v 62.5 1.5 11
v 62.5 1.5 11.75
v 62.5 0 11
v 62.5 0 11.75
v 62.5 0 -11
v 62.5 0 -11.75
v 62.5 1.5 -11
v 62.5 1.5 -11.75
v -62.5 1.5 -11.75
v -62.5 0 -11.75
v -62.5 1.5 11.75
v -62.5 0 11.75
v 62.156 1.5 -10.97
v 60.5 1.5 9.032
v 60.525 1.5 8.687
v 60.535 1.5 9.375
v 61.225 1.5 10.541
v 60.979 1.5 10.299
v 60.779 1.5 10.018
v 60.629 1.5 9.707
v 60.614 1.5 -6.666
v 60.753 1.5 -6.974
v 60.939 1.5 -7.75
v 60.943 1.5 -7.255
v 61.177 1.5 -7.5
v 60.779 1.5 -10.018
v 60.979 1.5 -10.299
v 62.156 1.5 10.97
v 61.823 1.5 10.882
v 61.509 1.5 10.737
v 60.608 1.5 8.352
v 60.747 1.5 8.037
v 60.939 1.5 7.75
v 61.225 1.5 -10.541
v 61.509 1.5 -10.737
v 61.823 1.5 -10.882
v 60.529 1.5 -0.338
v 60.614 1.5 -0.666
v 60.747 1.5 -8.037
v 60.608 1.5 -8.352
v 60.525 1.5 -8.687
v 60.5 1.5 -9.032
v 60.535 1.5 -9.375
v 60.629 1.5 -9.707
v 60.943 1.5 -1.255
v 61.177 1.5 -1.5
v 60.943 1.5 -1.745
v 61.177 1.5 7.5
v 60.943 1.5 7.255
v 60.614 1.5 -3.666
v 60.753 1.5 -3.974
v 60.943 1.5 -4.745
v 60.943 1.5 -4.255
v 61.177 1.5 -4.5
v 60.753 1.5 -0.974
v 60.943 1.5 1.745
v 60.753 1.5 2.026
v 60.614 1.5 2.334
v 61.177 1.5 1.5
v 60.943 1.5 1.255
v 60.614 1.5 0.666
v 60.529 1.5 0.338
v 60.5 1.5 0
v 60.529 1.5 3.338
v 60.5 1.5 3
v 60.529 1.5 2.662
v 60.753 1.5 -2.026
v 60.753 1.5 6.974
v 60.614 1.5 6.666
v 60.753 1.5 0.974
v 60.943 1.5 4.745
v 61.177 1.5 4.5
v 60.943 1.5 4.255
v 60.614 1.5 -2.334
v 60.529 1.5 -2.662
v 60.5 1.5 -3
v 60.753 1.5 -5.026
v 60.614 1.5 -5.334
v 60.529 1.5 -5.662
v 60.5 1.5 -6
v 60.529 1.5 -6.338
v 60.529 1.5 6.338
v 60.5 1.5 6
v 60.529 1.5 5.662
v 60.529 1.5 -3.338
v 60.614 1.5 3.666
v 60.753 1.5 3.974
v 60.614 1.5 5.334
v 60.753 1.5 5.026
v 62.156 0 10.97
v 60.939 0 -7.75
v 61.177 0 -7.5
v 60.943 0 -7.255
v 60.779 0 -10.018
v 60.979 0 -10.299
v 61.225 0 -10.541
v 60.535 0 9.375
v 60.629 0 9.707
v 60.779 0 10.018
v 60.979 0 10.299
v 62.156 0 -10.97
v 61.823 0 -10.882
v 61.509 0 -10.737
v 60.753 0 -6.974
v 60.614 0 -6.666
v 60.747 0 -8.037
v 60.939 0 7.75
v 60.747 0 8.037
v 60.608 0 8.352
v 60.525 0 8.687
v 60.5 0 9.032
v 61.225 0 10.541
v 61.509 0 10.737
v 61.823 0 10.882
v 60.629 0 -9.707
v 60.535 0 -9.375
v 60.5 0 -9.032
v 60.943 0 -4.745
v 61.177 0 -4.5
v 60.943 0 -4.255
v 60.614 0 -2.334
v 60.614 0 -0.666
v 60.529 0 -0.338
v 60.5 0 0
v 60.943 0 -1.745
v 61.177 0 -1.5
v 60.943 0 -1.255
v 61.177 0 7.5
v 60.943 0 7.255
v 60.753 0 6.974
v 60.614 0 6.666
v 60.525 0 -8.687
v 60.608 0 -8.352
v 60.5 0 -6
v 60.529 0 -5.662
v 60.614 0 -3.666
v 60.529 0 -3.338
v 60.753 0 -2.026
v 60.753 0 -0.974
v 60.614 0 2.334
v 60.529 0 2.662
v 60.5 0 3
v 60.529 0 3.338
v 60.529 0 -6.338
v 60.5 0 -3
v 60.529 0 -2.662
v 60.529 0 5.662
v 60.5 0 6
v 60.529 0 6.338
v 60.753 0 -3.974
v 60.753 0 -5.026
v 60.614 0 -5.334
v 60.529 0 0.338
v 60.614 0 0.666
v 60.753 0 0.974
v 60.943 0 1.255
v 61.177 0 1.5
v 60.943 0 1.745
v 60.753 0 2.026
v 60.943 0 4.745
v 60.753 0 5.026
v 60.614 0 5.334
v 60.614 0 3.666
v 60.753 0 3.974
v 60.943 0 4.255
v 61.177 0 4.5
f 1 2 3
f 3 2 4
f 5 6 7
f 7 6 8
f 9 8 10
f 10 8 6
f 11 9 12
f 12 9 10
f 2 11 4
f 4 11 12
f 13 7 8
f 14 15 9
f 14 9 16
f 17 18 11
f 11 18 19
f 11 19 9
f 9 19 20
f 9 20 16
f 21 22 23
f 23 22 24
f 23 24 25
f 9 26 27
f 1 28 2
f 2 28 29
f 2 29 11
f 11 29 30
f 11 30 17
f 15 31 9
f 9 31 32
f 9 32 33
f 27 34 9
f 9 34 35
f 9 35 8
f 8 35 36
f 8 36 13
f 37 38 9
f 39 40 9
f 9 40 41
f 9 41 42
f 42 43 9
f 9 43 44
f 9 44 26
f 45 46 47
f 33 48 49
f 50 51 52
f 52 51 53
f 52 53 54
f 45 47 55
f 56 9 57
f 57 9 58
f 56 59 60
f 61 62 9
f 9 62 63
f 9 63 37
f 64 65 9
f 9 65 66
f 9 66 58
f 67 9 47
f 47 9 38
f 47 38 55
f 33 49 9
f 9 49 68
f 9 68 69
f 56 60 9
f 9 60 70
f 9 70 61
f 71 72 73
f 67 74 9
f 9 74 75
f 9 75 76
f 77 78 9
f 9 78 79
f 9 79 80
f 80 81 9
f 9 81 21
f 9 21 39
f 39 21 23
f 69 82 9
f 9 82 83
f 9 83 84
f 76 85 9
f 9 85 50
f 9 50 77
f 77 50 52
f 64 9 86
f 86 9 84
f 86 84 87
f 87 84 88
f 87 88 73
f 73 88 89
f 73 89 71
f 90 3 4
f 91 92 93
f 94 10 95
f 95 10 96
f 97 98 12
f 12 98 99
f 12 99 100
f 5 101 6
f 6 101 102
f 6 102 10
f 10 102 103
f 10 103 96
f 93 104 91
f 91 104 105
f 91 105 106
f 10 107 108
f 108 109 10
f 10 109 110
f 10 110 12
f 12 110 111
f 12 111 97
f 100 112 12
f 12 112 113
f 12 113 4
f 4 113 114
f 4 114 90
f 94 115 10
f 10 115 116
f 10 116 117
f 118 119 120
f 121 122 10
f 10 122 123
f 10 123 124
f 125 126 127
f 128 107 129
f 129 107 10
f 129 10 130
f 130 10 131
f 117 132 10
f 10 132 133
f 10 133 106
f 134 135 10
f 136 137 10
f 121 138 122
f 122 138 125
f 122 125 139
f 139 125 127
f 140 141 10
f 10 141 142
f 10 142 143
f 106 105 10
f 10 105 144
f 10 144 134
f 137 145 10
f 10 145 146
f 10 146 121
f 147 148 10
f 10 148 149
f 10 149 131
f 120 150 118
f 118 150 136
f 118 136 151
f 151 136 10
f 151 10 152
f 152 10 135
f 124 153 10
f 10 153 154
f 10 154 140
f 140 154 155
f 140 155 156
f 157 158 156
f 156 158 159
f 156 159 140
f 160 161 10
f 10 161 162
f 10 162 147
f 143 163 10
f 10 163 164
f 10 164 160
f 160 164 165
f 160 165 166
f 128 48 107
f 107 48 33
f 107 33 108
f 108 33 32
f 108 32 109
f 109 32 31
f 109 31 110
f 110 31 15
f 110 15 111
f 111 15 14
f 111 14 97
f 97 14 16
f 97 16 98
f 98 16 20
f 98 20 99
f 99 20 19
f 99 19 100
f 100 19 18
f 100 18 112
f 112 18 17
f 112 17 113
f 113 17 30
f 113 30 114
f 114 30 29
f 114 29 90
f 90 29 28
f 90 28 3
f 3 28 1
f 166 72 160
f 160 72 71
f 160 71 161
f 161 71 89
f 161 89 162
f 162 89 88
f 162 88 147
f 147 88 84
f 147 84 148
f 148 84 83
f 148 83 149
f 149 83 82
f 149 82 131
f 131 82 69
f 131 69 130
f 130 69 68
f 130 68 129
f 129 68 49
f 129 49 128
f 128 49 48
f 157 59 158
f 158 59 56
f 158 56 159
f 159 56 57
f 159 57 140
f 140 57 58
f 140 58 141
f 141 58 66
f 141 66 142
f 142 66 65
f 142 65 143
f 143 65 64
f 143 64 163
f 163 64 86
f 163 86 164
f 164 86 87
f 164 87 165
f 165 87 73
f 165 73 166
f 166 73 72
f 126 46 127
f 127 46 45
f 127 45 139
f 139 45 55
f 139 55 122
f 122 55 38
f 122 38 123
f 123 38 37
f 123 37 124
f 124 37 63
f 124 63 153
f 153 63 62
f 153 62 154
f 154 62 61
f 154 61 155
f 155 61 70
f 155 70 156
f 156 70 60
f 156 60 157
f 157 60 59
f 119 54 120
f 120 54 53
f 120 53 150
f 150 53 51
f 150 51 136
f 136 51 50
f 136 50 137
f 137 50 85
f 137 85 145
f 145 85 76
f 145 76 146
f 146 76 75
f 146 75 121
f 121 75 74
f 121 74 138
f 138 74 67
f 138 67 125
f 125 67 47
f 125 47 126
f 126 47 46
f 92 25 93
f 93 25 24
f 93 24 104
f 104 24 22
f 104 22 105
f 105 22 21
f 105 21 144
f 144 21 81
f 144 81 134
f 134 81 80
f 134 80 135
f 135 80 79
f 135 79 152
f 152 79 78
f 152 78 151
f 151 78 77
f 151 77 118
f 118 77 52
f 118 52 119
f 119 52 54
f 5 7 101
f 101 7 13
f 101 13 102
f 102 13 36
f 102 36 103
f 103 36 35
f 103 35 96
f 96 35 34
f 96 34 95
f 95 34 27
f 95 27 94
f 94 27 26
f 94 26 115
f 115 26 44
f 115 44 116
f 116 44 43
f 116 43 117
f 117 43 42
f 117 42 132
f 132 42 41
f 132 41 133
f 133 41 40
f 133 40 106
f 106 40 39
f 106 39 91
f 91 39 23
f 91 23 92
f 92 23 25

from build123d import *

# Parameters (mm, degrees)
SKETCH_1_W          = 125
SKETCH_1_H          = 23.5
EXTRUDE_1_DEPTH     = 1.5
CUT_EXTRUDE_1_DEPTH = 64.612597023


with BuildPart() as part:
    # Эскиз1 → Бобышка-Вытянуть1 (new body)
    with BuildSketch(Plane(origin=(0, 0, 0), x_dir=(1, 0, 0), z_dir=(0, 1, 0))):
        Rectangle(SKETCH_1_W, SKETCH_1_H)
    extrude(amount=EXTRUDE_1_DEPTH)

    # Эскиз2 → Вырез-Вытянуть1 (cut, through all)
    with BuildSketch(Plane(origin=(0, 1.5, 0), x_dir=(1, 0, 0), z_dir=(0, 1, 0))):
        with BuildLine():
            ThreePointArc((62.5, 11), (60.629171307, 9.707106781), (61.177124344, 7.5))
            ThreePointArc((61.177124344, 7.5), (61.792893219, 7.870828693), (62.5, 8))
            Line((62.5, 8), (62.5, 11))
        make_face()
        with BuildLine():
            ThreePointArc((62.5, 8), (61.792893219, 7.870828693), (61.177124344, 7.5))
            ThreePointArc((61.177124344, 7.5), (61.792893219, 7.129171307), (62.5, 7))
            Line((62.5, 7), (62.5, 8))
        make_face()
        with BuildLine():
            Line((62.5, 8), (62.5, 7))
            ThreePointArc((62.5, 7), (63.207106781, 7.129171307), (63.822875656, 7.5))
            ThreePointArc((63.822875656, 7.5), (63.207106781, 7.870828693), (62.5, 8))
        make_face()
        with BuildLine():
            ThreePointArc((62.5, 8), (63.207106781, 7.870828693), (63.822875656, 7.5))
            ThreePointArc((63.822875656, 7.5), (64.322875656, 8.177124344), (64.5, 9))
            ThreePointArc((64.5, 9), (63.914213562, 10.414213562), (62.5, 11))
            Line((62.5, 11), (62.5, 8))
        make_face()
        with BuildLine():
            ThreePointArc((62.5, 5), (63.207106781, 4.870828693), (63.822875656, 4.5))
            ThreePointArc((63.822875656, 4.5), (64.322875656, 5.177124344), (64.5, 6))
            ThreePointArc((64.5, 6), (64.322875656, 6.822875656), (63.822875656, 7.5))
            ThreePointArc((63.822875656, 7.5), (63.207106781, 7.129171307), (62.5, 7))
            Line((62.5, 7), (62.5, 5))
        make_face()
        with BuildLine():
            ThreePointArc((61.177124344, 7.5), (60.5, 6), (61.177124344, 4.5))
            ThreePointArc((61.177124344, 4.5), (61.792893219, 4.870828693), (62.5, 5))
            Line((62.5, 5), (62.5, 7))
            ThreePointArc((62.5, 7), (61.792893219, 7.129171307), (61.177124344, 7.5))
        make_face()
        with BuildLine():
            Line((62.5, 5), (62.5, 4))
            ThreePointArc((62.5, 4), (63.207106781, 4.129171307), (63.822875656, 4.5))
            ThreePointArc((63.822875656, 4.5), (63.207106781, 4.870828693), (62.5, 5))
        make_face()
        with BuildLine():
            ThreePointArc((61.177124344, 4.5), (61.792893219, 4.129171307), (62.5, 4))
            Line((62.5, 4), (62.5, 5))
            ThreePointArc((62.5, 5), (61.792893219, 4.870828693), (61.177124344, 4.5))
        make_face()
        with BuildLine():
            ThreePointArc((62.5, 2), (63.207106781, 1.870828693), (63.822875656, 1.5))
            ThreePointArc((63.822875656, 1.5), (64.322875656, 2.177124344), (64.5, 3))
            ThreePointArc((64.5, 3), (64.322875656, 3.822875656), (63.822875656, 4.5))
            ThreePointArc((63.822875656, 4.5), (63.207106781, 4.129171307), (62.5, 4))
            Line((62.5, 4), (62.5, 2))
        make_face()
        with BuildLine():
            ThreePointArc((61.177124344, 1.5), (61.792893219, 1.870828693), (62.5, 2))
            Line((62.5, 2), (62.5, 4))
            ThreePointArc((62.5, 4), (61.792893219, 4.129171307), (61.177124344, 4.5))
            ThreePointArc((61.177124344, 4.5), (60.5, 3), (61.177124344, 1.5))
        make_face()
        with BuildLine():
            ThreePointArc((62.5, 1), (63.207106781, 1.129171307), (63.822875656, 1.5))
            ThreePointArc((63.822875656, 1.5), (63.207106781, 1.870828693), (62.5, 2))
            Line((62.5, 2), (62.5, 1))
        make_face()
        with BuildLine():
            Line((62.5, 1), (62.5, 2))
            ThreePointArc((62.5, 2), (61.792893219, 1.870828693), (61.177124344, 1.5))
            ThreePointArc((61.177124344, 1.5), (61.792893219, 1.129171307), (62.5, 1))
        make_face()
        with BuildLine():
            ThreePointArc((63.822875656, -1.5), (64.322875656, -0.822875656), (64.5, 0))
            ThreePointArc((64.5, 0), (64.322875656, 0.822875656), (63.822875656, 1.5))
            ThreePointArc((63.822875656, 1.5), (63.207106781, 1.129171307), (62.5, 1))
            Line((62.5, 1), (62.5, -1))
            ThreePointArc((62.5, -1), (63.207106781, -1.129171307), (63.822875656, -1.5))
        make_face()
        with BuildLine():
            Line((62.5, -1), (62.5, 1))
            ThreePointArc((62.5, 1), (61.792893219, 1.129171307), (61.177124344, 1.5))
            ThreePointArc((61.177124344, 1.5), (60.5, 0), (61.177124344, -1.5))
            ThreePointArc((61.177124344, -1.5), (61.792893219, -1.129171307), (62.5, -1))
        make_face()
        with BuildLine():
            ThreePointArc((62.5, -2), (63.207106781, -1.870828693), (63.822875656, -1.5))
            ThreePointArc((63.822875656, -1.5), (63.207106781, -1.129171307), (62.5, -1))
            Line((62.5, -1), (62.5, -2))
        make_face()
        with BuildLine():
            ThreePointArc((61.177124344, -1.5), (61.792893219, -1.870828693), (62.5, -2))
            Line((62.5, -2), (62.5, -1))
            ThreePointArc((62.5, -1), (61.792893219, -1.129171307), (61.177124344, -1.5))
        make_face()
        with BuildLine():
            ThreePointArc((64.5, -3), (64.322875656, -2.177124344), (63.822875656, -1.5))
            ThreePointArc((63.822875656, -1.5), (63.207106781, -1.870828693), (62.5, -2))
            Line((62.5, -2), (62.5, -4))
            ThreePointArc((62.5, -4), (63.207106781, -4.129171307), (63.822875656, -4.5))
            ThreePointArc((63.822875656, -4.5), (64.322875656, -3.822875656), (64.5, -3))
        make_face()
        with BuildLine():
            Line((62.5, -4), (62.5, -2))
            ThreePointArc((62.5, -2), (61.792893219, -1.870828693), (61.177124344, -1.5))
            ThreePointArc((61.177124344, -1.5), (60.5, -3), (61.177124344, -4.5))
            ThreePointArc((61.177124344, -4.5), (61.792893219, -4.129171307), (62.5, -4))
        make_face()
        with BuildLine():
            Line((62.5, -5), (62.5, -4))
            ThreePointArc((62.5, -4), (61.792893219, -4.129171307), (61.177124344, -4.5))
            ThreePointArc((61.177124344, -4.5), (61.792893219, -4.870828693), (62.5, -5))
        make_face()
        with BuildLine():
            ThreePointArc((63.822875656, -4.5), (63.207106781, -4.129171307), (62.5, -4))
            Line((62.5, -4), (62.5, -5))
            ThreePointArc((62.5, -5), (63.207106781, -4.870828693), (63.822875656, -4.5))
        make_face()
        with BuildLine():
            ThreePointArc((64.5, -6), (64.322875656, -5.177124344), (63.822875656, -4.5))
            ThreePointArc((63.822875656, -4.5), (63.207106781, -4.870828693), (62.5, -5))
            Line((62.5, -5), (62.5, -7))
            ThreePointArc((62.5, -7), (63.207106781, -7.129171307), (63.822875656, -7.5))
            ThreePointArc((63.822875656, -7.5), (64.322875656, -6.822875656), (64.5, -6))
        make_face()
        with BuildLine():
            ThreePointArc((62.5, -5), (61.792893219, -4.870828693), (61.177124344, -4.5))
            ThreePointArc((61.177124344, -4.5), (60.5, -6), (61.177124344, -7.5))
            ThreePointArc((61.177124344, -7.5), (61.792893219, -7.129171307), (62.5, -7))
            Line((62.5, -7), (62.5, -5))
        make_face()
        with BuildLine():
            ThreePointArc((62.5, -7), (61.792893219, -7.129171307), (61.177124344, -7.5))
            ThreePointArc((61.177124344, -7.5), (61.792893219, -7.870828693), (62.5, -8))
            Line((62.5, -8), (62.5, -7))
        make_face()
        with BuildLine():
            ThreePointArc((62.5, -8), (61.792893219, -7.870828693), (61.177124344, -7.5))
            ThreePointArc((61.177124344, -7.5), (60.629171307, -9.707106781), (62.5, -11))
            Line((62.5, -11), (62.5, -8))
        make_face()
        with BuildLine():
            ThreePointArc((63.822875656, -7.5), (63.207106781, -7.129171307), (62.5, -7))
            Line((62.5, -7), (62.5, -8))
            ThreePointArc((62.5, -8), (63.207106781, -7.870828693), (63.822875656, -7.5))
        make_face()
        with BuildLine():
            ThreePointArc((64.5, -9), (64.322875656, -8.177124344), (63.822875656, -7.5))
            ThreePointArc((63.822875656, -7.5), (63.207106781, -7.870828693), (62.5, -8))
            Line((62.5, -8), (62.5, -11))
            ThreePointArc((62.5, -11), (63.914213562, -10.414213562), (64.5, -9))
        make_face()
    extrude(amount=-CUT_EXTRUDE_1_DEPTH, mode=Mode.SUBTRACT)


solid = part.part
